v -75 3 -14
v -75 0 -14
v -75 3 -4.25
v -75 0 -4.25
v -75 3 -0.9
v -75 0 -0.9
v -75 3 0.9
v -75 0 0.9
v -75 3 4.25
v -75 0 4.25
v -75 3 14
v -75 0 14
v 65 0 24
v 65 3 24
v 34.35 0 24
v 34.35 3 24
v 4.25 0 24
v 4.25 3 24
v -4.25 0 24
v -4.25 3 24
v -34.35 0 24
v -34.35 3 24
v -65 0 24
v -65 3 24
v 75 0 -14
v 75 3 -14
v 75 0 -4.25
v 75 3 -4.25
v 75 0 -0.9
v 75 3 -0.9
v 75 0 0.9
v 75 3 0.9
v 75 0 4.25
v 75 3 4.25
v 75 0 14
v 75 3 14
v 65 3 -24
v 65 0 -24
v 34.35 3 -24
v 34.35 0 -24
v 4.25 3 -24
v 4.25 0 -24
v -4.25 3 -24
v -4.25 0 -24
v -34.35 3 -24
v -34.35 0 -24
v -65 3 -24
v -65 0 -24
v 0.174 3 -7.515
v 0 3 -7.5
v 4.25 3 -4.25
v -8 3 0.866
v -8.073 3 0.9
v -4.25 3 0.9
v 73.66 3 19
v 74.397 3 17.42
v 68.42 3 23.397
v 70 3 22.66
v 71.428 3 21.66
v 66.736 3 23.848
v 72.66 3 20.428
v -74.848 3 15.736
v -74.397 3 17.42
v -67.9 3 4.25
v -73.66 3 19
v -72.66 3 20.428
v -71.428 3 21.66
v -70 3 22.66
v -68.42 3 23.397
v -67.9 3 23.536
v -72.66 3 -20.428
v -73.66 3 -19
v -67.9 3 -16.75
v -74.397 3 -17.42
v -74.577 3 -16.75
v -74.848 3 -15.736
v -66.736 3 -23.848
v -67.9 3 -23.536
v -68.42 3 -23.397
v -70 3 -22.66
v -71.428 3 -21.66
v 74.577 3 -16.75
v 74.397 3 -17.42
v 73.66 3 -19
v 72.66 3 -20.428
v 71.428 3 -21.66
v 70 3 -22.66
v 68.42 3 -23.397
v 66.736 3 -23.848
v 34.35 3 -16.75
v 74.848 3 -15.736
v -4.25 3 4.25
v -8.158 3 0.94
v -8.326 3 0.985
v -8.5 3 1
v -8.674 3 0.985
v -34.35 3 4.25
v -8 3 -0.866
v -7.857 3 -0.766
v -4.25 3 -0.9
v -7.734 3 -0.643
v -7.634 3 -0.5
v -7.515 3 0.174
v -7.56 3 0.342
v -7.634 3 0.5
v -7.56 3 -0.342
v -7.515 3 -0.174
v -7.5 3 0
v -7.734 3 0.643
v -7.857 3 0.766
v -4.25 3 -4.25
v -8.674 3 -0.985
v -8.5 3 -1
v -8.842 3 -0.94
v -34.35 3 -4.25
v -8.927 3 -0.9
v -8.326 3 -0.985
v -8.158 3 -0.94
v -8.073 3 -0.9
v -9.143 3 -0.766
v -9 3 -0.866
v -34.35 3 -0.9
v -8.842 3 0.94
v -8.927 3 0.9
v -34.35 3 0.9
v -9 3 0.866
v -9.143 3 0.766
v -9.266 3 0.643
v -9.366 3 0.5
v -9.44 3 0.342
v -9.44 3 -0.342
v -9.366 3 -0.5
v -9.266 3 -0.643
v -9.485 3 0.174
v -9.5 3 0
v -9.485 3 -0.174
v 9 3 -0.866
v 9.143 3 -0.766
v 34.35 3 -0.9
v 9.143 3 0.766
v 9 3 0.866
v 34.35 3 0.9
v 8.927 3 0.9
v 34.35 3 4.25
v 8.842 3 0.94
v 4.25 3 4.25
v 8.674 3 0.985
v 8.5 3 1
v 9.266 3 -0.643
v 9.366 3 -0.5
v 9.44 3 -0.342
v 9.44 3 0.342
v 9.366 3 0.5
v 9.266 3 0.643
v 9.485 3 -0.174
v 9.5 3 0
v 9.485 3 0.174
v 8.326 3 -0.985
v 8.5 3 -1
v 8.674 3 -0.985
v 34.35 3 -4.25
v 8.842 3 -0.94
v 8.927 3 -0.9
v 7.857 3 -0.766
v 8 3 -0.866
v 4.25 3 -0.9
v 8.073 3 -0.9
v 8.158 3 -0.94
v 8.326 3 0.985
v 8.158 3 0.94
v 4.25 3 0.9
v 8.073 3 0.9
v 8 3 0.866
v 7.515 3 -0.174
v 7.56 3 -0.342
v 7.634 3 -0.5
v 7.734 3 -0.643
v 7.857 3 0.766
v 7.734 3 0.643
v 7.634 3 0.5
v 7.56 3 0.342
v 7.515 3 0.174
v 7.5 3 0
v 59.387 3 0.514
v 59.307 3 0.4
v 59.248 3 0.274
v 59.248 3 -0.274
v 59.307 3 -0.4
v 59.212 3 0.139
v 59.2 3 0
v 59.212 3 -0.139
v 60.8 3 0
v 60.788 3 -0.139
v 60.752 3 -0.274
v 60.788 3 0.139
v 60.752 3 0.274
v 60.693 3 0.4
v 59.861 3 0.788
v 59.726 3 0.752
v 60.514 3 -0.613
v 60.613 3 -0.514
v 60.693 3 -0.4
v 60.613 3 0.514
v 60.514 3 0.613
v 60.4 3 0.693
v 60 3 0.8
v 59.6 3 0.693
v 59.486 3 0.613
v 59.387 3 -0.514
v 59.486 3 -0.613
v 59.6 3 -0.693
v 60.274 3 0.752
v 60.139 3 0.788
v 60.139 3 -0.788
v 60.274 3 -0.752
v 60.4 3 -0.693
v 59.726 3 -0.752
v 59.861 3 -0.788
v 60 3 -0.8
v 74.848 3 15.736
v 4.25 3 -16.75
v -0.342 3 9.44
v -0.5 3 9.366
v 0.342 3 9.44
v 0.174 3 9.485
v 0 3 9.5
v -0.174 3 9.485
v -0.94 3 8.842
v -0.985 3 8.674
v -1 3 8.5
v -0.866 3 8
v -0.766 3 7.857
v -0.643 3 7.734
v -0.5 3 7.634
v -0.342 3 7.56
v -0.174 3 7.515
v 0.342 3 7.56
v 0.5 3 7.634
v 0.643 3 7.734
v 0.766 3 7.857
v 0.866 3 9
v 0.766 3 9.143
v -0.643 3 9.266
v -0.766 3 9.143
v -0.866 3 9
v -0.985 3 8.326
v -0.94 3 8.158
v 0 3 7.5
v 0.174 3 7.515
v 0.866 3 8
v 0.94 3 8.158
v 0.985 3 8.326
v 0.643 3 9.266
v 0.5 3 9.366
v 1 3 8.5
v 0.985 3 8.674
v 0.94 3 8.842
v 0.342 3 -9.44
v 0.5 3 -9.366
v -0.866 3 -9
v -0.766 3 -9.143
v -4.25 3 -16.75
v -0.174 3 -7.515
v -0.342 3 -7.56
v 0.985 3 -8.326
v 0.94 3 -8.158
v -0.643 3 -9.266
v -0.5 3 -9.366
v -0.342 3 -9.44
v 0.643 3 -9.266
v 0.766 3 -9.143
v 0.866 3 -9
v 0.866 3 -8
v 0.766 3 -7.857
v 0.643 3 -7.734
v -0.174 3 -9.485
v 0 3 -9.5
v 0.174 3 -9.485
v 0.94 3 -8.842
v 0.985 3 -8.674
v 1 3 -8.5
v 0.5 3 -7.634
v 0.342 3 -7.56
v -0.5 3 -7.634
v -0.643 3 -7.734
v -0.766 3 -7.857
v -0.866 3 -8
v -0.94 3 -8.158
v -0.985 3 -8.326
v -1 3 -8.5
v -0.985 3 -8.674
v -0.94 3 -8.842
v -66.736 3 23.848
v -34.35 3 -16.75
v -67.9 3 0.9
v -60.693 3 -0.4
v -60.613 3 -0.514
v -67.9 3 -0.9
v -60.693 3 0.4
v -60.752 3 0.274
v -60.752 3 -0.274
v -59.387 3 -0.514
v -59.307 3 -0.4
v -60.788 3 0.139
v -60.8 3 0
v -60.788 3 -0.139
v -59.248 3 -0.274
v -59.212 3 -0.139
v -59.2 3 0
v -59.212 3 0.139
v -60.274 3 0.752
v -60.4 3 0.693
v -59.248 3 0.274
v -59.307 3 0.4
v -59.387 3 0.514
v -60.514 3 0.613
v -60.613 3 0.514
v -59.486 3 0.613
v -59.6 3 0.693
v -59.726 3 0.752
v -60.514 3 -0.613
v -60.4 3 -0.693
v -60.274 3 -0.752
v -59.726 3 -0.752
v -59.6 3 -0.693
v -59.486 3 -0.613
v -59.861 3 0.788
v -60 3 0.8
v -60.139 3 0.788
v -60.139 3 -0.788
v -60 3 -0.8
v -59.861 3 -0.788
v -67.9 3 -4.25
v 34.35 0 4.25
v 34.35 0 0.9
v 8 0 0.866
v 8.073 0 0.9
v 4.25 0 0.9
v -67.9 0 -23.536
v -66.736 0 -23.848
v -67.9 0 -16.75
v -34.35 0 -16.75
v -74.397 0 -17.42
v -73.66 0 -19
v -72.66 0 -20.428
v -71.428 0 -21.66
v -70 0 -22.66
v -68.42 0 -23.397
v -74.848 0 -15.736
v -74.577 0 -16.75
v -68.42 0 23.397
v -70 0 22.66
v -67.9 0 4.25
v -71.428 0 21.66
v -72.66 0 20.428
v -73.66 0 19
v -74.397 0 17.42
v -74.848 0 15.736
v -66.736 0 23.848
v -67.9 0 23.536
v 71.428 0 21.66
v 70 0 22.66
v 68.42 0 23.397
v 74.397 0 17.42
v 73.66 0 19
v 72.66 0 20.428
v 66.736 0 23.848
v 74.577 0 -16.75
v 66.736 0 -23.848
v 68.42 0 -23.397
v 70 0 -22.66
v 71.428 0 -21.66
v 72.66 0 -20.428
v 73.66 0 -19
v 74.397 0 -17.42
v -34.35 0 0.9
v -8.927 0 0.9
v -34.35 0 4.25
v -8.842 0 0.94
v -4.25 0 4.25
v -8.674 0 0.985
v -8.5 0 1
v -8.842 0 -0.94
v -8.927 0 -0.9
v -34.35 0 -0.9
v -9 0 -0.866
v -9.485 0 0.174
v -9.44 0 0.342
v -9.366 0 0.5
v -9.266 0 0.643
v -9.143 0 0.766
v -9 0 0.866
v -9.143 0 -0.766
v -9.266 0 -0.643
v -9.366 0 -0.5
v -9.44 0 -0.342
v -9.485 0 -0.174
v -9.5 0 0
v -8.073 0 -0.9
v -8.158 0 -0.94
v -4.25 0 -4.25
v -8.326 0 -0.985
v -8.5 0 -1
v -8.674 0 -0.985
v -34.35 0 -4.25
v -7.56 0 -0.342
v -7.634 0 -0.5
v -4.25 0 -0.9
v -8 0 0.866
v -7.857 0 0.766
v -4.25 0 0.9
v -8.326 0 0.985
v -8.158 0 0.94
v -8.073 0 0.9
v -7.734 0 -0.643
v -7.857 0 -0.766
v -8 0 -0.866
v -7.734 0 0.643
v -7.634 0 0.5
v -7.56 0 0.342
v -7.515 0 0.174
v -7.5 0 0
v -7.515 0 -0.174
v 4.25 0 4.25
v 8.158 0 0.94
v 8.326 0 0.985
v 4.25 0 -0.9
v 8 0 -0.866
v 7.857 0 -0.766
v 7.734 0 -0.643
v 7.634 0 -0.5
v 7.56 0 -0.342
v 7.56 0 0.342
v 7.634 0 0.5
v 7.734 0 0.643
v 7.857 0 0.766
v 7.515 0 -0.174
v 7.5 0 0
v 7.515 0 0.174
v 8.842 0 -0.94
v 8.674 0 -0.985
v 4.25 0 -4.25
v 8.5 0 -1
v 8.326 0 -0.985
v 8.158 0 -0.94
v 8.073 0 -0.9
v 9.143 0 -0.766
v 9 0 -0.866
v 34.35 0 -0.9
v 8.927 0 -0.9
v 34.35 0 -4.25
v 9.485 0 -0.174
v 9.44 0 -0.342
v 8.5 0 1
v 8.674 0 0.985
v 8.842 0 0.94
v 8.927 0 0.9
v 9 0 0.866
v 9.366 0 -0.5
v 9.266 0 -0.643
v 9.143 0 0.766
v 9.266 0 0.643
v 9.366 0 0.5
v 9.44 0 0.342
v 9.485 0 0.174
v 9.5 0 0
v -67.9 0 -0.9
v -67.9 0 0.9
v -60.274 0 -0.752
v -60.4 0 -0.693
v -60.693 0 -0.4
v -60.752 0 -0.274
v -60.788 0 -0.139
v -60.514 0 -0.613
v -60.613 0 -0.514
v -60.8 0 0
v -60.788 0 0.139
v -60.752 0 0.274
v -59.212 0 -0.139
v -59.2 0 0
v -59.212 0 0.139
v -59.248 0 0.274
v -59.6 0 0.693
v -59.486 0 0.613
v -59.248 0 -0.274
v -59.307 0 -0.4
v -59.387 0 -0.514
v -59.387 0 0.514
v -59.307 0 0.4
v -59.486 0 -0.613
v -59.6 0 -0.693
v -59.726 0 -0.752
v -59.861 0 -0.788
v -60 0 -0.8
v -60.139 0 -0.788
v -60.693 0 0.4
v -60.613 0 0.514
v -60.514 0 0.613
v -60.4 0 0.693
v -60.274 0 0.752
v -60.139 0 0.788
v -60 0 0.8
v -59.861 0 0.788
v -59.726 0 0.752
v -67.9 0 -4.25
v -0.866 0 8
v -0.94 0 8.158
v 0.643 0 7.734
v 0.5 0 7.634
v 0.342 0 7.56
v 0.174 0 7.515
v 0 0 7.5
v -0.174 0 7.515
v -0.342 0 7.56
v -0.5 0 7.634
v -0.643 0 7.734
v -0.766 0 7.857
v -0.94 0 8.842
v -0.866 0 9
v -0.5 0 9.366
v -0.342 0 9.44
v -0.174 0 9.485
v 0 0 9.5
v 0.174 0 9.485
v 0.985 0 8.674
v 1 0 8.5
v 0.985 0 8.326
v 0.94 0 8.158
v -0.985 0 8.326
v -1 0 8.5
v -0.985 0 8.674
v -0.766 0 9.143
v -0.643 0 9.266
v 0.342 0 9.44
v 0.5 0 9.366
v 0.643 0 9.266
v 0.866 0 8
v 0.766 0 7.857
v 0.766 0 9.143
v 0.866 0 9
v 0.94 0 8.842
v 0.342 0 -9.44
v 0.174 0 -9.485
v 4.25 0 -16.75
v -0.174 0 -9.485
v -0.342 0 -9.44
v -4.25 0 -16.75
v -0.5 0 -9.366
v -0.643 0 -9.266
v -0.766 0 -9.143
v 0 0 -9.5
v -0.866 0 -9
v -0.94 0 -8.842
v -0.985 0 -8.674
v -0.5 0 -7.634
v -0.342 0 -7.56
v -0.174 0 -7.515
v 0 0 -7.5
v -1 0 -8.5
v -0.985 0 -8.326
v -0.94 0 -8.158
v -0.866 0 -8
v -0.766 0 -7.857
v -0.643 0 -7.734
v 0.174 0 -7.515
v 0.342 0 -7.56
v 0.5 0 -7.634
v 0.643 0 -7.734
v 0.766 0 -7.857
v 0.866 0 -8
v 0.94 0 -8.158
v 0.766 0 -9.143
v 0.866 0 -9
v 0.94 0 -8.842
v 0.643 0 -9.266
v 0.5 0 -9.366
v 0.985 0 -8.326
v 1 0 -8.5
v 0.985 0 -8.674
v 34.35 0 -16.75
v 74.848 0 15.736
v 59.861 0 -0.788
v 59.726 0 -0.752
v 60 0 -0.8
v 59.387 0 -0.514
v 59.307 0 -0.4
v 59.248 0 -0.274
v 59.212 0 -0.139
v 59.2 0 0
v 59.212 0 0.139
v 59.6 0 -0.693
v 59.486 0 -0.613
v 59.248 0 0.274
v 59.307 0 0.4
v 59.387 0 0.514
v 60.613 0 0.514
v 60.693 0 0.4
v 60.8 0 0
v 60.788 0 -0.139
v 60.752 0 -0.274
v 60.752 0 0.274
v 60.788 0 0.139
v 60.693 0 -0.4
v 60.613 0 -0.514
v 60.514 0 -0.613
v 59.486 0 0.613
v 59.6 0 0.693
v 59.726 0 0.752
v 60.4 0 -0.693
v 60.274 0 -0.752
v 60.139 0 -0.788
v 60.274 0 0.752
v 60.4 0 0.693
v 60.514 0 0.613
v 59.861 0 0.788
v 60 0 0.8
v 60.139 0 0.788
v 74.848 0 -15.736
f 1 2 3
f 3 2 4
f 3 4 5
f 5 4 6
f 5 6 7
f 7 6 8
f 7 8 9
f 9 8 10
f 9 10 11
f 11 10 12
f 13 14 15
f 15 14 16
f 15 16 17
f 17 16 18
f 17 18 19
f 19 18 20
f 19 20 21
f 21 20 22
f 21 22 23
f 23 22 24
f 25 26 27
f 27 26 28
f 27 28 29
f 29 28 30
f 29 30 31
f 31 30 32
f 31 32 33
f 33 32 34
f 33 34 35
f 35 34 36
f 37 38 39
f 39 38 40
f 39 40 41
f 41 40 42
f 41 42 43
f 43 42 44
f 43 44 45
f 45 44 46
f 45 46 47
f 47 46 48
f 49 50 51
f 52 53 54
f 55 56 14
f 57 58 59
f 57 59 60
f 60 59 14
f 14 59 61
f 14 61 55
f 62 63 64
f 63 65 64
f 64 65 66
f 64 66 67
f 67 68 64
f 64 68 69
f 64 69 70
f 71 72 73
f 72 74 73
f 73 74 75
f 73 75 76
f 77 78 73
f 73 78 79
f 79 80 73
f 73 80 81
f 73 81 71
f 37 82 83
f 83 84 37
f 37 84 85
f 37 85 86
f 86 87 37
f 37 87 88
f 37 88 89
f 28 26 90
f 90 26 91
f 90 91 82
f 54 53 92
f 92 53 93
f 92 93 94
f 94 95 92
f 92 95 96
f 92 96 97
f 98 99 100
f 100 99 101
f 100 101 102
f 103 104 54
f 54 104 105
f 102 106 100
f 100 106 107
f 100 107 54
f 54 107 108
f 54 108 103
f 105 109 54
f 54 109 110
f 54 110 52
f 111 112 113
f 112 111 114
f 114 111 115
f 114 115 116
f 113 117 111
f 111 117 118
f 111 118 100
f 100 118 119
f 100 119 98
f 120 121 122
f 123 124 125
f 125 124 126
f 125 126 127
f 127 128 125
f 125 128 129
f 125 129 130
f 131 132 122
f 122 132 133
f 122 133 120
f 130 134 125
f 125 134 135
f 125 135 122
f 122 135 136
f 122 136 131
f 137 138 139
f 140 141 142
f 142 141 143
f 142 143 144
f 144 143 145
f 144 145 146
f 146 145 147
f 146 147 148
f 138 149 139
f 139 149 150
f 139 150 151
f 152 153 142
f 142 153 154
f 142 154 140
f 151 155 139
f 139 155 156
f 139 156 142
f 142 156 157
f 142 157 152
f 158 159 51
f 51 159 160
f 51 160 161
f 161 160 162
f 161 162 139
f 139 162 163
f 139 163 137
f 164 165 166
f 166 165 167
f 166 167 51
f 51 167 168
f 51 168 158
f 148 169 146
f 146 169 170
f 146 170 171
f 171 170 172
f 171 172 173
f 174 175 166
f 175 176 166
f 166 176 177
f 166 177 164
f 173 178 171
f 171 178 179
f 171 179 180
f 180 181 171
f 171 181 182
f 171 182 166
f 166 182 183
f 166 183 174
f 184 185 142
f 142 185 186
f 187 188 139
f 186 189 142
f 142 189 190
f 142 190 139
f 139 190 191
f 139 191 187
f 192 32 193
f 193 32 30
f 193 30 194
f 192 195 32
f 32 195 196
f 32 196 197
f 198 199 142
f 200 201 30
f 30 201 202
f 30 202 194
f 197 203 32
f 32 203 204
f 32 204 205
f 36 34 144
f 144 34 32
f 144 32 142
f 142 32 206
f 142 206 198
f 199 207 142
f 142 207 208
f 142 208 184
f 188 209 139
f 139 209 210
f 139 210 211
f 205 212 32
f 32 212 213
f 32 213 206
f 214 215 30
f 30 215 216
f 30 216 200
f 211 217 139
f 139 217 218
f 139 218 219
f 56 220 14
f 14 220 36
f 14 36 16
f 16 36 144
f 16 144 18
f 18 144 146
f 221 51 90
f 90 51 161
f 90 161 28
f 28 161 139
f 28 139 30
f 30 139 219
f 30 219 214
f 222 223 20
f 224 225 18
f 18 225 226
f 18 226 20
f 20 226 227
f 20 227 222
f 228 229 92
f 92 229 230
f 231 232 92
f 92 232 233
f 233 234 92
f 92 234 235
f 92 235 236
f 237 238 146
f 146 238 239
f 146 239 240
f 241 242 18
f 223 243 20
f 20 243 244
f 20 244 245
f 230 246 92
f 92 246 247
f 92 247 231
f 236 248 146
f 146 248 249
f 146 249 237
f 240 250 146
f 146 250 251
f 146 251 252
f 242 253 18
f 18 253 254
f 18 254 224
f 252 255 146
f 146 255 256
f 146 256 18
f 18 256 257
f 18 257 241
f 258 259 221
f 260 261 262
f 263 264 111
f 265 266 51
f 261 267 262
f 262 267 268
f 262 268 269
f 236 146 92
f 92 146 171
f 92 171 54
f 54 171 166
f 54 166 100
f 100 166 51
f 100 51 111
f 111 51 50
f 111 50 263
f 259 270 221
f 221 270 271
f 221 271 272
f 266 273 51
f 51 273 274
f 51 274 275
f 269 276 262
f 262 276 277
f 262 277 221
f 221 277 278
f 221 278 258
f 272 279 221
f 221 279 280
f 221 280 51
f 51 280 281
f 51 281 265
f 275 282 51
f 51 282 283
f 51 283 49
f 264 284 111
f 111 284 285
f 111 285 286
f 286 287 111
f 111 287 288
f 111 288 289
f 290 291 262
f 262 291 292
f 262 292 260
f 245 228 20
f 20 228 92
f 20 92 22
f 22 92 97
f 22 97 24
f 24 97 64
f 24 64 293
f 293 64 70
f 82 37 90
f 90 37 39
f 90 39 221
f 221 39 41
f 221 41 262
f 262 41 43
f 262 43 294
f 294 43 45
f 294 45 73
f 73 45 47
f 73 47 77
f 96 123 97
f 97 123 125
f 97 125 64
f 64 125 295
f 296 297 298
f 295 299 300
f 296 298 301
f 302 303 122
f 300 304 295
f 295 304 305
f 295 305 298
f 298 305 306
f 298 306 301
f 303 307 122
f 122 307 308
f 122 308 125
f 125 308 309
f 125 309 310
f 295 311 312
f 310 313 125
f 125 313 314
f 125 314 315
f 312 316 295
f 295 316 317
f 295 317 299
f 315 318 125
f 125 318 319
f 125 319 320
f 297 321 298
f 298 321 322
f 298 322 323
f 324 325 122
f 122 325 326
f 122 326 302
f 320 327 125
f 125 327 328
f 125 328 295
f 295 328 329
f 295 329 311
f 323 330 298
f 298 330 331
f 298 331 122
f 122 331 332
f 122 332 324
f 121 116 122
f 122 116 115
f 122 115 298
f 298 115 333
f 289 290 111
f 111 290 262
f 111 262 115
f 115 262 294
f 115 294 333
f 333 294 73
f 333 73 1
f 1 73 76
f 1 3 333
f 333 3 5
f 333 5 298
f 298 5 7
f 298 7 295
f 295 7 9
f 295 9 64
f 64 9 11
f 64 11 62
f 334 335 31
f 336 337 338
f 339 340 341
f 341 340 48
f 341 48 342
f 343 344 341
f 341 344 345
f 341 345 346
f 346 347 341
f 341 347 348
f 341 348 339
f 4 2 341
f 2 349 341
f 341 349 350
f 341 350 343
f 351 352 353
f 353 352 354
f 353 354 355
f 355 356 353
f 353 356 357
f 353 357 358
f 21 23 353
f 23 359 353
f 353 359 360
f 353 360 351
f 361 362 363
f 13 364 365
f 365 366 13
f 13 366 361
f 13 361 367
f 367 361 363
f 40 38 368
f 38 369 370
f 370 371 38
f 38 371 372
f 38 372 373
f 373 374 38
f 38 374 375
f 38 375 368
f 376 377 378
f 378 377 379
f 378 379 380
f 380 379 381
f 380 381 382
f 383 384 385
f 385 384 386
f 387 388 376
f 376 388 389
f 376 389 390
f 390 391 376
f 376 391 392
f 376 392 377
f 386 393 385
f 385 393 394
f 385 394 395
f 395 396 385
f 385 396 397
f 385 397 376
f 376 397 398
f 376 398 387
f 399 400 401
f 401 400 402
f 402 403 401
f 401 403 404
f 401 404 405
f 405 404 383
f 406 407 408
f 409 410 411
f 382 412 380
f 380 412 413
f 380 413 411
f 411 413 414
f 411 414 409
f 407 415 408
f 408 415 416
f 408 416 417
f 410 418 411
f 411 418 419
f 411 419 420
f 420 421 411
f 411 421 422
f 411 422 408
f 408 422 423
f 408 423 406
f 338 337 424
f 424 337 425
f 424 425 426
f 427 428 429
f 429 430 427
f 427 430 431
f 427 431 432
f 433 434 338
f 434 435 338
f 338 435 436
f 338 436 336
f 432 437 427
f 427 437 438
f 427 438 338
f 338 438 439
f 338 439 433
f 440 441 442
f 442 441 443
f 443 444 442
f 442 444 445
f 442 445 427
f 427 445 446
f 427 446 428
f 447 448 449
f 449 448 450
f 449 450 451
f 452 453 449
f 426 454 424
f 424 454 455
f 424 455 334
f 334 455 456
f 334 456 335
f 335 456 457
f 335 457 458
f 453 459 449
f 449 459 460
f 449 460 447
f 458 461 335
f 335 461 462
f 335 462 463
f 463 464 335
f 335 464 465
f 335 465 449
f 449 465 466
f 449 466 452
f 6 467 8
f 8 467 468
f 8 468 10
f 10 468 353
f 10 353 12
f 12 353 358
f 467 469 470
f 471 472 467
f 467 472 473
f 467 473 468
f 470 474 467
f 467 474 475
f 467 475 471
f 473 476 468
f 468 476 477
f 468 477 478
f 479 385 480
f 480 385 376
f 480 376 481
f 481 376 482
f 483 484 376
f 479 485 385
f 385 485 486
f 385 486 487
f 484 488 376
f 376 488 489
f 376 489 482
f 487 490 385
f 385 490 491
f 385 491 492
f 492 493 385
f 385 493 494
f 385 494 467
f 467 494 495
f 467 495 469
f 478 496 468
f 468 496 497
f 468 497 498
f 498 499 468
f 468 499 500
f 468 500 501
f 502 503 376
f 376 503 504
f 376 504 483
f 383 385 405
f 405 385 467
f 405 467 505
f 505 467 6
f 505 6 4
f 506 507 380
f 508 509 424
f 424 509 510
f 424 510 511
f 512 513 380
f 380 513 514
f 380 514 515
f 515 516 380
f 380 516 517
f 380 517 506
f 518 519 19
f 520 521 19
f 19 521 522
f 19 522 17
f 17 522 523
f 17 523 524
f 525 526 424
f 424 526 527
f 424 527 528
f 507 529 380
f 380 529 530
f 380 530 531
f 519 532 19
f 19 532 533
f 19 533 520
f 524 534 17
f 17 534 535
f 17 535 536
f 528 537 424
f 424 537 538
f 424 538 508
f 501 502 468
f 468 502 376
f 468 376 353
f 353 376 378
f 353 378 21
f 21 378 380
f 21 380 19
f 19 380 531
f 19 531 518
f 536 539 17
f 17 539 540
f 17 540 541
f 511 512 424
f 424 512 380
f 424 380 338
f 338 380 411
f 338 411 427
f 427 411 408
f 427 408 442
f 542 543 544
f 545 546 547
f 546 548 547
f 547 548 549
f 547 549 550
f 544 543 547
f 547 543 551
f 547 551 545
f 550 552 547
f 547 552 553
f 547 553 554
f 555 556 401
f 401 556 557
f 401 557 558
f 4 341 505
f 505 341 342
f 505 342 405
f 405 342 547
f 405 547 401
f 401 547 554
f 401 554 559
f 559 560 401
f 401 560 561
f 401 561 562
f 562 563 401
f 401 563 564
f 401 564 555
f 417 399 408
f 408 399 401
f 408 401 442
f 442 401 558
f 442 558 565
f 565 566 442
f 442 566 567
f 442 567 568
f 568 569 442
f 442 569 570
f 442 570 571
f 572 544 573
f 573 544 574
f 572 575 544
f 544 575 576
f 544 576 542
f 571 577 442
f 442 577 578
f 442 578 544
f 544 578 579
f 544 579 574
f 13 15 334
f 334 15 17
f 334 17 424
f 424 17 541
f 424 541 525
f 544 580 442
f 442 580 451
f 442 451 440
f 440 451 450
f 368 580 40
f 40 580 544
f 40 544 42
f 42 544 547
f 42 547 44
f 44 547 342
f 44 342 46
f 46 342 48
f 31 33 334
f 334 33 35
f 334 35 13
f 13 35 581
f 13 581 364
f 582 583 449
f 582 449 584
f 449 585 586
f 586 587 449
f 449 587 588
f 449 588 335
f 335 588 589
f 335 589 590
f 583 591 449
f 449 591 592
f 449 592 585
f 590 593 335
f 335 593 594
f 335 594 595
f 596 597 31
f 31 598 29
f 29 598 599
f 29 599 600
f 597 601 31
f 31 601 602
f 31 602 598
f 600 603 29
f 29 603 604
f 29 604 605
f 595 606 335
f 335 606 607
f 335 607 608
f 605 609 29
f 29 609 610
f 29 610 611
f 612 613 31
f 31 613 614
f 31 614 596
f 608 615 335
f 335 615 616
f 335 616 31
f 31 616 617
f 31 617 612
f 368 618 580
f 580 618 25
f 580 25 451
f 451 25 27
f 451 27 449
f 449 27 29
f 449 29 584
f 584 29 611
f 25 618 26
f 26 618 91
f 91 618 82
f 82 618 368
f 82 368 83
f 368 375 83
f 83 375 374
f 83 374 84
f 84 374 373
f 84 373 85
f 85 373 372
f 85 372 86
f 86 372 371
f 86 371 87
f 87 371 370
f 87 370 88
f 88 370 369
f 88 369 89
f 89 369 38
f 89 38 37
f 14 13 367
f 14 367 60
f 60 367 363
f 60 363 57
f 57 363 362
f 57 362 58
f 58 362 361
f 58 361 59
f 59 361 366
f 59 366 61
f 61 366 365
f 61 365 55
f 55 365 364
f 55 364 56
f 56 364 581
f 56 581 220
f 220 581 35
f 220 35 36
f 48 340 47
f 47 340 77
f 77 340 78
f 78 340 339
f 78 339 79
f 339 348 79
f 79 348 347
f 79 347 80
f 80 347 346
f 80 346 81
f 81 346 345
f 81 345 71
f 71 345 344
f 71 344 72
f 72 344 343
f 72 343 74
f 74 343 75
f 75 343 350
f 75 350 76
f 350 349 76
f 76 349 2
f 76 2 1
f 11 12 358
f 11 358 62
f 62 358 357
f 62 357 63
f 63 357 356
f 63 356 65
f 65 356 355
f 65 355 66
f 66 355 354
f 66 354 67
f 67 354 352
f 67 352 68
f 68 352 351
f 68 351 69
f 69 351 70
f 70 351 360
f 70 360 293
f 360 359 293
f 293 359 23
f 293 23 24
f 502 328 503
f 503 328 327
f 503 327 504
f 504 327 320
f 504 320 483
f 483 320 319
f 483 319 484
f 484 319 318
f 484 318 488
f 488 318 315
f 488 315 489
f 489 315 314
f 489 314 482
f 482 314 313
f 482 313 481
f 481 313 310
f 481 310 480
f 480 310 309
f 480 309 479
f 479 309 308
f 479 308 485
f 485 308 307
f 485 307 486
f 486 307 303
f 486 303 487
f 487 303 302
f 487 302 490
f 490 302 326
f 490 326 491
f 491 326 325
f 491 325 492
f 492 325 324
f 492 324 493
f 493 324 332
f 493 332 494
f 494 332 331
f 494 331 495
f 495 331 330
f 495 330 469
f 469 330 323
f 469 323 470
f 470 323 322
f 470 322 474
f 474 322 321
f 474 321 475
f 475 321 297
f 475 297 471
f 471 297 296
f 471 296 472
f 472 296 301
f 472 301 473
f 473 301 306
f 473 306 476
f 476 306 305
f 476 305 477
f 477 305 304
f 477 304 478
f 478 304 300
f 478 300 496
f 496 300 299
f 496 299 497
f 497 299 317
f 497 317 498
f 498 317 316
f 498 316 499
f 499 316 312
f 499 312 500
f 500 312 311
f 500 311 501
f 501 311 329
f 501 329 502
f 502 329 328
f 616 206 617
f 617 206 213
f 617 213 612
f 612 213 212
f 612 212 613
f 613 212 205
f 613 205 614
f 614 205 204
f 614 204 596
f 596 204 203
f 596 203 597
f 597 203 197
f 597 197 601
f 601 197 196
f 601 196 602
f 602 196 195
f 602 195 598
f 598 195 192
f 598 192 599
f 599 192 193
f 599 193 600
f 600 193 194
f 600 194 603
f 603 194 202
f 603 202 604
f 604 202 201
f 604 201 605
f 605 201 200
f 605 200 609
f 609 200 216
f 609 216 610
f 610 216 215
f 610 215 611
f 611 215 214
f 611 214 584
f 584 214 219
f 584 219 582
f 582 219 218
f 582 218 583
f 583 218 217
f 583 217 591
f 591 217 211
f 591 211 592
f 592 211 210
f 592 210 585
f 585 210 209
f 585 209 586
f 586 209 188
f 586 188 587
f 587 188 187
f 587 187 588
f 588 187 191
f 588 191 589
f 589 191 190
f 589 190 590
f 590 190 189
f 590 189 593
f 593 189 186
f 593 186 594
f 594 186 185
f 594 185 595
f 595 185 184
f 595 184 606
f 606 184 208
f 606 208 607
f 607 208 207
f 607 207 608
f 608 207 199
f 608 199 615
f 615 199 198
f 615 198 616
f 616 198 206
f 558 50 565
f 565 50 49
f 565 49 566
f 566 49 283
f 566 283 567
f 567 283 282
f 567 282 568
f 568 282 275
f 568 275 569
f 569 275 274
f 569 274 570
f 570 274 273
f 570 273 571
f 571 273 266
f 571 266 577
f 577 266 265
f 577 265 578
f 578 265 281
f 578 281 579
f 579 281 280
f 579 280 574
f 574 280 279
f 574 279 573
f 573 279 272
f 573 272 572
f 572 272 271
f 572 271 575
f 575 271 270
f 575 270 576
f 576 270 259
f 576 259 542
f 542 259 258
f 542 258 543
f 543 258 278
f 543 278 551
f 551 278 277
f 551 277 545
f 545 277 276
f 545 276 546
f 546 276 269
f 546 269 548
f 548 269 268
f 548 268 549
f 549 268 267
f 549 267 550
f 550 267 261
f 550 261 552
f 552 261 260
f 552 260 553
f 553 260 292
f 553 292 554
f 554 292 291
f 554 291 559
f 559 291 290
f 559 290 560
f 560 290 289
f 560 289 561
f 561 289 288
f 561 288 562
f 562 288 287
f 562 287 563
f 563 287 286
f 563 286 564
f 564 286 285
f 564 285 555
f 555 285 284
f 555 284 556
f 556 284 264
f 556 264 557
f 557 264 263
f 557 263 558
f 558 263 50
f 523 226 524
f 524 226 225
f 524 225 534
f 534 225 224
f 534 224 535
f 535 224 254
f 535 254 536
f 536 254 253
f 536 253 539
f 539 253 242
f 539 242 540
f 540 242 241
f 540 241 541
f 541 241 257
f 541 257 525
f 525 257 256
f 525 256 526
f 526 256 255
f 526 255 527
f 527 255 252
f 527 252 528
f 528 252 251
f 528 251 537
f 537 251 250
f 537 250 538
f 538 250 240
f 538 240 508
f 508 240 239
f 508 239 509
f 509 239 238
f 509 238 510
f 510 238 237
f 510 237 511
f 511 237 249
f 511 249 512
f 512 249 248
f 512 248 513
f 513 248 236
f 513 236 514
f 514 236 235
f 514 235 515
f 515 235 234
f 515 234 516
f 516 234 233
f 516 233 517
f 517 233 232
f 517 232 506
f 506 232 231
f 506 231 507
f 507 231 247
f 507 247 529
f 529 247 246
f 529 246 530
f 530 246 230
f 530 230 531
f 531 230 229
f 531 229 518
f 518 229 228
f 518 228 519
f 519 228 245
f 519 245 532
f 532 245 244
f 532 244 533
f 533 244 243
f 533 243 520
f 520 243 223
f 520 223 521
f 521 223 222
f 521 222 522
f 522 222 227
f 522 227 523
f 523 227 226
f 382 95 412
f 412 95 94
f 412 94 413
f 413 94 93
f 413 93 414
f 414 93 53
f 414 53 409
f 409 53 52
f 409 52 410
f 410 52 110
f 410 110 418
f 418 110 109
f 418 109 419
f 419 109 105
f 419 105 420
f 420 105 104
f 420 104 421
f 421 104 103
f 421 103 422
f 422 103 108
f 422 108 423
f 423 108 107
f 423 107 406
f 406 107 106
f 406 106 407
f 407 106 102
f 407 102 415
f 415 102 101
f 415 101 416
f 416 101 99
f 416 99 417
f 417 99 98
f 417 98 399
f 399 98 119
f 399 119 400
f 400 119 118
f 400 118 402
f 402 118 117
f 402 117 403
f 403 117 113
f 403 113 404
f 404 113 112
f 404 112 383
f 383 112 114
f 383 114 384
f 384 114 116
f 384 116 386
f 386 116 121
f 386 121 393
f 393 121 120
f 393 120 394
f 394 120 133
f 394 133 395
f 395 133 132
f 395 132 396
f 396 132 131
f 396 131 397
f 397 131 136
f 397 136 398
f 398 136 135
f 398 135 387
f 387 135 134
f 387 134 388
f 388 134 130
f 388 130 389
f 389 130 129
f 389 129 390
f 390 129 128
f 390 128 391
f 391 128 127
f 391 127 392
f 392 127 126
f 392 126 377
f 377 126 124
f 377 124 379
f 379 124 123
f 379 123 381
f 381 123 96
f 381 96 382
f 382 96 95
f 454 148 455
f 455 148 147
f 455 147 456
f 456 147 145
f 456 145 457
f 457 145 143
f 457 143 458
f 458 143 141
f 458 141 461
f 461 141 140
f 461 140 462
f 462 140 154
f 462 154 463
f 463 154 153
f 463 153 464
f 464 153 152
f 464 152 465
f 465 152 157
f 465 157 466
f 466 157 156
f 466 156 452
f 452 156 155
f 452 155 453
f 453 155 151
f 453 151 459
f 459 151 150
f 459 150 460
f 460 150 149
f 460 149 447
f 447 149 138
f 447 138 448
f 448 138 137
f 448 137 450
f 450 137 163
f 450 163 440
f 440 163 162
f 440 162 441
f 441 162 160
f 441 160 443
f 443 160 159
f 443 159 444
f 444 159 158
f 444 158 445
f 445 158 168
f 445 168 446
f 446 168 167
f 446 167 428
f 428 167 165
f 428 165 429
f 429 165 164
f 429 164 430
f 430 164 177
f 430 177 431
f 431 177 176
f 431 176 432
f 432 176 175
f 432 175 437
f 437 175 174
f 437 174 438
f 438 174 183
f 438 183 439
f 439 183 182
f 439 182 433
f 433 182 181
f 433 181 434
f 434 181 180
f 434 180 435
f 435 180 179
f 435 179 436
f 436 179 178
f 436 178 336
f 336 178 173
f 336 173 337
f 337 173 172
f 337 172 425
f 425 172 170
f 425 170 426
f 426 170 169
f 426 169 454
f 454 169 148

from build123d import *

# Parameters (mm, degrees)
SKETCH1_W           = 150
SKETCH1_H           = 48
BOSS_EXTRUDE1_DEPTH = 3
FILLET1_R           = 10
SKETCH2_R           = 0.8
CUT_EXTRUDE1_DEPTH  = 79.803553219
SKETCH3_R           = 1
CUT_EXTRUDE2_DEPTH  = 79.803553219


with BuildPart() as part:
    # Sketch1 → Boss-Extrude1 (new body)
    with BuildSketch(Plane(origin=(0, 0, 0), x_dir=(1, 0, 0), z_dir=(0, 1, 0))):
        Rectangle(SKETCH1_W, SKETCH1_H)
    extrude(amount=BOSS_EXTRUDE1_DEPTH)

    # Fillet1
    fillet1_edges = [part.edges().sort_by_distance(p)[0] for p in [
        (-75, 1.5, -24),
        (75, 1.5, -24),
        (75, 1.5, 24),
        (-75, 1.5, 24),
    ]]
    fillet(fillet1_edges, radius=FILLET1_R)

    # Sketch2 → Cut-Extrude1 (cut, through all)
    with BuildSketch(Plane(origin=(0, 3, 0), x_dir=(1, 0, 0), z_dir=(0, 1, 0))):
        with Locations(Location((-60, 0, 0), (0, 0, 270))):
            Circle(SKETCH2_R)
        with Locations(Location((60, 0, 0), (0, 0, 270))):
            Circle(SKETCH2_R)
    extrude(amount=-CUT_EXTRUDE1_DEPTH, mode=Mode.SUBTRACT)

    # Sketch3 → Cut-Extrude2 (cut, through all)
    with BuildSketch(Plane(origin=(0, 3, 0), x_dir=(1, 0, 0), z_dir=(0, 1, 0))):
        with Locations(Location((-8.5, 0, 0), (0, 0, 270))):
            Circle(SKETCH3_R)
        with Locations(Location((8.5, 0, 0), (0, 0, 270))):
            Circle(SKETCH3_R)
        with Locations(Location((0, 8.5, 0), (0, 0, 270))):
            Circle(SKETCH3_R)
        with Locations(Location((0, -8.5, 0), (0, 0, 270))):
            Circle(SKETCH3_R)
    extrude(amount=-CUT_EXTRUDE2_DEPTH, mode=Mode.SUBTRACT)


solid = part.part
